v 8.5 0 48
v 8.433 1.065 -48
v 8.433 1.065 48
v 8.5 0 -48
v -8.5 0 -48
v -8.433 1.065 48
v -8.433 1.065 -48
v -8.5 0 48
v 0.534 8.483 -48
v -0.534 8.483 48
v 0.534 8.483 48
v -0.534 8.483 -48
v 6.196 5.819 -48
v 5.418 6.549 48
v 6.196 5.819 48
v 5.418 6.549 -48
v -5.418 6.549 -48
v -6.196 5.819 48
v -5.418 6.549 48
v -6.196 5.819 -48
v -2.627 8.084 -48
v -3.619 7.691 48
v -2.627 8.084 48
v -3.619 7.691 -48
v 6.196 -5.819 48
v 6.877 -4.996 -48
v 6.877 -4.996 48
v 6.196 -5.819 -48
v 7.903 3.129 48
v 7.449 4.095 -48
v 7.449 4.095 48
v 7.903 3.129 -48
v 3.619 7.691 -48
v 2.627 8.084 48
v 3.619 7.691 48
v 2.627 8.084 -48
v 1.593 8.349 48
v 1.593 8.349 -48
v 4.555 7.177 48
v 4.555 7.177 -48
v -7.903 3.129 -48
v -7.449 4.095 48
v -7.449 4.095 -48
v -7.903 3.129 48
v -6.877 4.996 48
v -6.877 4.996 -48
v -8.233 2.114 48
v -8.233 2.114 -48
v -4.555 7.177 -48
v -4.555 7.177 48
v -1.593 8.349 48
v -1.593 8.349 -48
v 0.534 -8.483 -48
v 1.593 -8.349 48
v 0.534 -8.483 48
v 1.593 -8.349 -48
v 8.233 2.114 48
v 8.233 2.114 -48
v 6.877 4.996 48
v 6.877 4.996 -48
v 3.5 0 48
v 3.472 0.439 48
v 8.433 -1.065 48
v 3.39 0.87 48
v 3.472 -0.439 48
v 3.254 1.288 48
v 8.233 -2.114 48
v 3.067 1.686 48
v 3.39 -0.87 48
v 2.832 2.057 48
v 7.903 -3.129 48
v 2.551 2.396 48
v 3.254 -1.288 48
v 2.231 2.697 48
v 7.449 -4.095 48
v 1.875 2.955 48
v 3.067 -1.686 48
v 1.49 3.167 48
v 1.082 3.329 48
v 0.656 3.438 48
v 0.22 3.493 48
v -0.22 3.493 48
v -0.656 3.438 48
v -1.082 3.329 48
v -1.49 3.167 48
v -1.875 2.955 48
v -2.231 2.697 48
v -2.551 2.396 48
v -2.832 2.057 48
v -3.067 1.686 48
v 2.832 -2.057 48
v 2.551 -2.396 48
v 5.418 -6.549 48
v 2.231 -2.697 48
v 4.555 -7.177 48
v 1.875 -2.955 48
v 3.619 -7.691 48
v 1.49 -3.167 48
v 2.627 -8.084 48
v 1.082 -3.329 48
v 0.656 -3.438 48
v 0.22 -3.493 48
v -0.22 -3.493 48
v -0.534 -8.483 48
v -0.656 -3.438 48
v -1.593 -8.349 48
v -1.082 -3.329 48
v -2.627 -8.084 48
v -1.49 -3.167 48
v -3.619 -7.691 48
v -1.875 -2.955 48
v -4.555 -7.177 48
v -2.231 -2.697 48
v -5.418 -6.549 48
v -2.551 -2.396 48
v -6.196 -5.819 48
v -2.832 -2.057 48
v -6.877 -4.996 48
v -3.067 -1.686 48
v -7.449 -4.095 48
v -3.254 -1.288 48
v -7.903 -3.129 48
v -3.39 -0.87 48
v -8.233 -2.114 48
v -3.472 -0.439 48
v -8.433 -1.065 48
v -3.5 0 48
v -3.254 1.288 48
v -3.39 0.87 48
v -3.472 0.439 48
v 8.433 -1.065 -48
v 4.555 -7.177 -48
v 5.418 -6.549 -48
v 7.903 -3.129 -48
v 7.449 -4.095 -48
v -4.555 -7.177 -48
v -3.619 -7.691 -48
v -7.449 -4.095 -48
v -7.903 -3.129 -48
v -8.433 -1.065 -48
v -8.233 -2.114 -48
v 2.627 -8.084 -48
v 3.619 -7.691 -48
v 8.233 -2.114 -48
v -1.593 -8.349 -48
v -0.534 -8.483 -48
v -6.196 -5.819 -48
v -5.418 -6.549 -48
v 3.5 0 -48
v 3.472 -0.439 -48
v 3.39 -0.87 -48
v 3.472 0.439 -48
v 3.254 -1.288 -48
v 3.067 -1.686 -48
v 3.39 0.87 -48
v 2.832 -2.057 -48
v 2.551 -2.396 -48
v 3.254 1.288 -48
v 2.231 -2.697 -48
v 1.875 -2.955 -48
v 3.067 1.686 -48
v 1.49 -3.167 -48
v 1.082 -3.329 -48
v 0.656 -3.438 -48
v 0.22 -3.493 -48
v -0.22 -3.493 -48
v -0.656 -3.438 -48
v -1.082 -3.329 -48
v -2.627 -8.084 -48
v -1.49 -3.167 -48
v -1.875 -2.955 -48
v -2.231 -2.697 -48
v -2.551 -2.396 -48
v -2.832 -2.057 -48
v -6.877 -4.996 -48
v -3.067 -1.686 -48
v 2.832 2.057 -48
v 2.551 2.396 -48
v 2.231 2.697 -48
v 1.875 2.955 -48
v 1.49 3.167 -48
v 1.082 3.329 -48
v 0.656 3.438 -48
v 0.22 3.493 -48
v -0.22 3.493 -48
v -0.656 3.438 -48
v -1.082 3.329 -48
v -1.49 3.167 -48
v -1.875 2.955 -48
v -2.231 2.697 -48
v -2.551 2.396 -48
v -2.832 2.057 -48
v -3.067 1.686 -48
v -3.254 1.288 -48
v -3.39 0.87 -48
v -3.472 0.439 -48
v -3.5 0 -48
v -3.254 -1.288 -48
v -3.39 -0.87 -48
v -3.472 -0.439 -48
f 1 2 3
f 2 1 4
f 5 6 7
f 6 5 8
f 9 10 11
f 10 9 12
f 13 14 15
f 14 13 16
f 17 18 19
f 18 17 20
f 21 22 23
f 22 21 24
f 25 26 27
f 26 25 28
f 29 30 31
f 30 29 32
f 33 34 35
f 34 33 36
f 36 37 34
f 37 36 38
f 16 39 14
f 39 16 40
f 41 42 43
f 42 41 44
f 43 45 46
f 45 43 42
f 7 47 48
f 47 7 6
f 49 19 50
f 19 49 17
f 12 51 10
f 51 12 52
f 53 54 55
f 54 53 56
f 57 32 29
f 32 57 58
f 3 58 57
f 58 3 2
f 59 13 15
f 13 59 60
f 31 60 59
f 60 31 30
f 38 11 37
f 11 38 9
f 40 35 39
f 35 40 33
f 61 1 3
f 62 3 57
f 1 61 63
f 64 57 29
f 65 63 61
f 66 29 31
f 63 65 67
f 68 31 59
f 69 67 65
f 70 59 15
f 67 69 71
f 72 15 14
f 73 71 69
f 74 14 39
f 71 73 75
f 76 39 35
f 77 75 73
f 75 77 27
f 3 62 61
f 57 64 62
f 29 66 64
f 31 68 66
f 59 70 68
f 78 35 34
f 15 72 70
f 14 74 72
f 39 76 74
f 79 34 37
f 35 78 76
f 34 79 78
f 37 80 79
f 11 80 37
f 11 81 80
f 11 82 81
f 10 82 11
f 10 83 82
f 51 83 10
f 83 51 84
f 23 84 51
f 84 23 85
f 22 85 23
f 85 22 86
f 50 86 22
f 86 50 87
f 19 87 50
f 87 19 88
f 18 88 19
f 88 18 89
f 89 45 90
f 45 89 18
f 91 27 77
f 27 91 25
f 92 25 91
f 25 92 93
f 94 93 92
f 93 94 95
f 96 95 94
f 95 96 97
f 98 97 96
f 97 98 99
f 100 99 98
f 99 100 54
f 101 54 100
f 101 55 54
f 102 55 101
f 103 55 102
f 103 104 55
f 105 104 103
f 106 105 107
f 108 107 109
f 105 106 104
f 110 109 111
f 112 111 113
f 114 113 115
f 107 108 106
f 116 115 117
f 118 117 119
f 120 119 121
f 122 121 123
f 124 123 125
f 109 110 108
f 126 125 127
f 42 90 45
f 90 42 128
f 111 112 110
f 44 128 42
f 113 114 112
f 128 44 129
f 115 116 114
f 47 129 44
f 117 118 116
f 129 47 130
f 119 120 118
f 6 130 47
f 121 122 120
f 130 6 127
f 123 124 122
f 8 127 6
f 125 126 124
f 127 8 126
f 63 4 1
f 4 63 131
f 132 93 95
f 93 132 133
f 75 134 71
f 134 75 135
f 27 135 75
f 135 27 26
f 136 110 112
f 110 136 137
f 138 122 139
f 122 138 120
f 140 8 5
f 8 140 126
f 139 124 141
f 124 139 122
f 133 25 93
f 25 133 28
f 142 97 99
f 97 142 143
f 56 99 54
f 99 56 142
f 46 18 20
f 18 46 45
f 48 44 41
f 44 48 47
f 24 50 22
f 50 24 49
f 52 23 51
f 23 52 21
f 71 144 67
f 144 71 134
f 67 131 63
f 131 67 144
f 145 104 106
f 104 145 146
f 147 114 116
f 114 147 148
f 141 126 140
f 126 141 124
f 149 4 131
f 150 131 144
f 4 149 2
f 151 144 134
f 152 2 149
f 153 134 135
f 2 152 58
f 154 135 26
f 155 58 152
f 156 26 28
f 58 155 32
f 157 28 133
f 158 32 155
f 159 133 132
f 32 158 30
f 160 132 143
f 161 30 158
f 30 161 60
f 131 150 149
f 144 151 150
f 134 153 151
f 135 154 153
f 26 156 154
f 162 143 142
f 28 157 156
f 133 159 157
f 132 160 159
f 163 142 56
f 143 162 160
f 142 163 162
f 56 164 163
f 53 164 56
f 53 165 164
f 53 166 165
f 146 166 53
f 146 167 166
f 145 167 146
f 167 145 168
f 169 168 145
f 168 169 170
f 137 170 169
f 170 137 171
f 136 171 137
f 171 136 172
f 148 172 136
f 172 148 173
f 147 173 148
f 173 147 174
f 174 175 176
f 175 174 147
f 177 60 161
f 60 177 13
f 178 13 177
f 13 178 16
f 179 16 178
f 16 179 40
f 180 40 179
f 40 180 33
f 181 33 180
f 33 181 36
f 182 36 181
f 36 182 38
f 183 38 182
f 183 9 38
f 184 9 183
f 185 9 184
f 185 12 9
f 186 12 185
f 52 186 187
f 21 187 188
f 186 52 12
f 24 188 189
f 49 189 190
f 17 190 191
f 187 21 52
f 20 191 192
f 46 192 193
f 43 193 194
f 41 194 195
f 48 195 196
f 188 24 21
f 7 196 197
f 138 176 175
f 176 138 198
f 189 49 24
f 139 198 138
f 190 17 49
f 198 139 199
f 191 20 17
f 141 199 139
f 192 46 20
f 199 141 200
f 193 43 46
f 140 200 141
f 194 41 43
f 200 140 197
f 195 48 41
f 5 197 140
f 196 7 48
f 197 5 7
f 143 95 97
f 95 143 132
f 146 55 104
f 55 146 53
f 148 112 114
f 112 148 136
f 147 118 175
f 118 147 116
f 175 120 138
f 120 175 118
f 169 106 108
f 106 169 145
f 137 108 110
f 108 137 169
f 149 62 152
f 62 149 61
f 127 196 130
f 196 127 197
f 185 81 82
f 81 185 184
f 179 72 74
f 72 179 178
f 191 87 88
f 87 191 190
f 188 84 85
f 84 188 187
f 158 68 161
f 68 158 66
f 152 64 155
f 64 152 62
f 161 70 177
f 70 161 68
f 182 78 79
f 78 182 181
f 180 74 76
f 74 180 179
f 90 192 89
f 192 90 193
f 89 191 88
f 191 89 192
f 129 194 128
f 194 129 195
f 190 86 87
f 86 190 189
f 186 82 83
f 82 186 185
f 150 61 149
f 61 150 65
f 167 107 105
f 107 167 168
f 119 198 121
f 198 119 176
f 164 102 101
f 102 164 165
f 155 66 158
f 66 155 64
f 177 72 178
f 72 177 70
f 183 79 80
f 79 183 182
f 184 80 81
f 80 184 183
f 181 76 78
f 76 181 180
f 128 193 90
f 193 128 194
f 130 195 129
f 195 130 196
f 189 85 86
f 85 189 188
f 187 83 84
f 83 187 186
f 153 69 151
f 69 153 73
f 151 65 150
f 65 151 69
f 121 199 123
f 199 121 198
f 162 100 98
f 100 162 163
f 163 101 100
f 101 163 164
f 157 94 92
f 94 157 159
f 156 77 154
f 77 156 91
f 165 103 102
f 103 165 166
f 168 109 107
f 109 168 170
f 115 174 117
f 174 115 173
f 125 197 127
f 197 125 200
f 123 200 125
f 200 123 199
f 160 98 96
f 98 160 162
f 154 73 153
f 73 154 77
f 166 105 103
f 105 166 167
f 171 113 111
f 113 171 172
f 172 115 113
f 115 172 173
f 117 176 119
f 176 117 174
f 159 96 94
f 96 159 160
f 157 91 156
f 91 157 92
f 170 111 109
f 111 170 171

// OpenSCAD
$fn = 50;


difference() {
	union() {
		translate(v = [0, 0, -48.0000000000]) {
			cylinder(h = 96, r = 8.5000000000);
		}
	}
	union() {
		translate(v = [0, 0, -100.0000000000]) {
			cylinder(h = 200, r = 3.5000000000);
		}
	}
}
